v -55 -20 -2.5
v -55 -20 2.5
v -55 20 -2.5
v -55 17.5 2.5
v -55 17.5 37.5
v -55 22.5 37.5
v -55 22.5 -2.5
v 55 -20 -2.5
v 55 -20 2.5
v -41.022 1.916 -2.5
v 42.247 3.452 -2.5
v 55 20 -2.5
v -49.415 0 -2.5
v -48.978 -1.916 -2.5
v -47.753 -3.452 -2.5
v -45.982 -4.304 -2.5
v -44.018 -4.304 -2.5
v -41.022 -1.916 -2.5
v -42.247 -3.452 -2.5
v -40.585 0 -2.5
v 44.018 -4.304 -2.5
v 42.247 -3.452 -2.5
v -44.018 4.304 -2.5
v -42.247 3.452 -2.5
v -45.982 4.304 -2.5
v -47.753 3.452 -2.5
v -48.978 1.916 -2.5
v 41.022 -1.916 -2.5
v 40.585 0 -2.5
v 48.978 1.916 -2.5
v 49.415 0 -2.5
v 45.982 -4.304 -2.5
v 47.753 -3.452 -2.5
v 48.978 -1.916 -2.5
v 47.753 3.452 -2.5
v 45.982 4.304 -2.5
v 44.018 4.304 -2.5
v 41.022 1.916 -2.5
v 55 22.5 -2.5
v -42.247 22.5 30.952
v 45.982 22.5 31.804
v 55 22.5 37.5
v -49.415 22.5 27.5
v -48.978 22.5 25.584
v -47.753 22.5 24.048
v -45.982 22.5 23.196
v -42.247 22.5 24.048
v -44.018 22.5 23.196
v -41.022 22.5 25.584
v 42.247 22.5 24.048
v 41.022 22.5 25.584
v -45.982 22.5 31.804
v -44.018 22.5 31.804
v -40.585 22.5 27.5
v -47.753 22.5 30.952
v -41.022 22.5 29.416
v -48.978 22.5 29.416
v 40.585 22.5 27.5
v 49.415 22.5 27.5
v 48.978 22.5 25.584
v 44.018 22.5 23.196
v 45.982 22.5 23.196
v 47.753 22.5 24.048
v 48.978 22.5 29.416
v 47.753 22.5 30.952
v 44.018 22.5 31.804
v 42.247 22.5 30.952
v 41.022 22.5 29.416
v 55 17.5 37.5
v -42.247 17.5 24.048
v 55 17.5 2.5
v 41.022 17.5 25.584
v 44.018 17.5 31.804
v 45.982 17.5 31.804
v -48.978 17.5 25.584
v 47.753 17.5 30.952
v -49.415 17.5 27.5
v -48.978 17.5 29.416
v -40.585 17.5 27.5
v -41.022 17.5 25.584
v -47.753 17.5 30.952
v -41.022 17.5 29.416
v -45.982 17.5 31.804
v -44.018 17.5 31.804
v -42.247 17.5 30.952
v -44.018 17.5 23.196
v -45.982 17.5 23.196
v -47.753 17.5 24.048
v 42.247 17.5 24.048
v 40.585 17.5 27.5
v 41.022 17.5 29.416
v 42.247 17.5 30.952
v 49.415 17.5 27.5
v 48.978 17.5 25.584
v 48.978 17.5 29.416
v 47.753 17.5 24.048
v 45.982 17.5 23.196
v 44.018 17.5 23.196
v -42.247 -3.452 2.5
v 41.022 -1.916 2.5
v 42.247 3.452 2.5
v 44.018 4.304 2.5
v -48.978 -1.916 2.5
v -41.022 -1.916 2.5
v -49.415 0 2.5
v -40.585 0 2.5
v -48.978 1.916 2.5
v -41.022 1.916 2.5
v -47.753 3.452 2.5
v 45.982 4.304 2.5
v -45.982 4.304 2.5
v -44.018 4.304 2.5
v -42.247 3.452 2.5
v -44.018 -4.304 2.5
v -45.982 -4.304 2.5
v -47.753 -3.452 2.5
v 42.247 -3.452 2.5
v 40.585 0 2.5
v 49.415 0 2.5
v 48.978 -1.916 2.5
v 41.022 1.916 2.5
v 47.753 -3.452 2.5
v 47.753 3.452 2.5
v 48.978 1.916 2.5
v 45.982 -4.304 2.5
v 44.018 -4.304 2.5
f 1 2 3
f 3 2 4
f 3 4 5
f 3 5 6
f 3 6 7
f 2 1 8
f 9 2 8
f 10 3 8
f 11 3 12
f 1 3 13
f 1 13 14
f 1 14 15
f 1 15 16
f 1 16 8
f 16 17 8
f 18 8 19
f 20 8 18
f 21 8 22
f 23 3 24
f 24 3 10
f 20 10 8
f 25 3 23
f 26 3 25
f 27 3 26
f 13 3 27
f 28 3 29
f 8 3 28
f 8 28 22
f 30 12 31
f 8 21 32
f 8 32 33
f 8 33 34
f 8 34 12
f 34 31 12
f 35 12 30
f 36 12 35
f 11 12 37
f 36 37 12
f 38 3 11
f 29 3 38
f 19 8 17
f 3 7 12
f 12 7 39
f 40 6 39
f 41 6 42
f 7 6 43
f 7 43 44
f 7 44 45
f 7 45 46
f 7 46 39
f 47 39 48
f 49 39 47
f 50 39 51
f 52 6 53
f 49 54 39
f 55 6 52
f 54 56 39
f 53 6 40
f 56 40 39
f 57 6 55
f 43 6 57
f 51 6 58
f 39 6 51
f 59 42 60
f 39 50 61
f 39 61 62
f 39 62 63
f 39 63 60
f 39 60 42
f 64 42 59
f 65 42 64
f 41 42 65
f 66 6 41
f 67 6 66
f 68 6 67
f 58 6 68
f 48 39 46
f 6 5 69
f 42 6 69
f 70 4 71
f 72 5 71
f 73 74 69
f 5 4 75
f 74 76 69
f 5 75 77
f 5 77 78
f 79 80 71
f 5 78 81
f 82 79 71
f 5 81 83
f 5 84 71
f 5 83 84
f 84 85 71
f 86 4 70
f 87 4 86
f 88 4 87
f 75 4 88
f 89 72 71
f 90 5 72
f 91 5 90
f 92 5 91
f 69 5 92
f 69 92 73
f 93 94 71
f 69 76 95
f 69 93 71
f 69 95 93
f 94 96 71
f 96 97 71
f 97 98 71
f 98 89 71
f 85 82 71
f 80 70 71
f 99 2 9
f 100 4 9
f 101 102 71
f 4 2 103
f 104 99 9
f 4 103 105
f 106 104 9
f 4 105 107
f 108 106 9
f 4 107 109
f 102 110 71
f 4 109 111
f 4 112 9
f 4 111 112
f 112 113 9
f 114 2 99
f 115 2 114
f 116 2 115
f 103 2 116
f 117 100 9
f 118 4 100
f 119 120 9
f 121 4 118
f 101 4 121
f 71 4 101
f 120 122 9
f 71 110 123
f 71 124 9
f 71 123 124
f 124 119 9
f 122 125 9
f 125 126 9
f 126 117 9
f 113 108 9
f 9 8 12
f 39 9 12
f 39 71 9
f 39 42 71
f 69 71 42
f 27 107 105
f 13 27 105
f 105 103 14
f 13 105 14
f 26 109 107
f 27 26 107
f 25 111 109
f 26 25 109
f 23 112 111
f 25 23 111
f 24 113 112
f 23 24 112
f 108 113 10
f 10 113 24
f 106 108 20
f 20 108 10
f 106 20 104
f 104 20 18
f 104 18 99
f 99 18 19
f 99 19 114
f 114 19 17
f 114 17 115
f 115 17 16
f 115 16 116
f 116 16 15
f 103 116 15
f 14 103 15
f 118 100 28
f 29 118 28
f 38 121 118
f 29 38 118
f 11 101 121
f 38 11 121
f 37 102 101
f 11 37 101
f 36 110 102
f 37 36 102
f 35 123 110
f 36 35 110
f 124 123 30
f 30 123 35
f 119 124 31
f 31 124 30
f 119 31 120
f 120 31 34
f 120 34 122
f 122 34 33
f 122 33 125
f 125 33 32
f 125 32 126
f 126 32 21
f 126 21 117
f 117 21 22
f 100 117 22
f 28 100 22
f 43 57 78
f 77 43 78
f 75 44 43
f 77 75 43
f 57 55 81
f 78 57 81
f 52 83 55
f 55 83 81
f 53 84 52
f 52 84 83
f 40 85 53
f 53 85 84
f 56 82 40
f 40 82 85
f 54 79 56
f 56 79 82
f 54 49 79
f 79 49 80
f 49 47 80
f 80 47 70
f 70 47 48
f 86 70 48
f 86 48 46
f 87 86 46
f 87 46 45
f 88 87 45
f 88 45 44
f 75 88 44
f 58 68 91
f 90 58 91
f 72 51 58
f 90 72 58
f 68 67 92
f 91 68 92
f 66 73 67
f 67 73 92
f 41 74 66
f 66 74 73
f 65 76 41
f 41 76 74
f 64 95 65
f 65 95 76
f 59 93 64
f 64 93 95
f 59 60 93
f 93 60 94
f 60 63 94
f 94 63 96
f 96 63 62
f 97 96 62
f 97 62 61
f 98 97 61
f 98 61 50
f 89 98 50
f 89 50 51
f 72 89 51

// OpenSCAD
// Capacitor Bracket - used to attach capacitor to the antenna's "spine"

sr=8.83; //  standard diameter
T=5; //thickness

module bore(){
	cylinder(h=(T+2),d=sr,center=true);
}
/*
module threadrod(){
	color("Blue",0.5) cylinder(h=
}
*/

module isoplate(){
translate([0,20,17.5])rotate([90,0,0]){
			difference(){
			translate([0,0,0])cube([110,40,T],center=true);
			translate([45,10,0]) bore();
			translate([-45,10,0]) bore();
		}
	}

	difference(){
		translate([0,0,0])cube([110,40,T],center=true);
		//translate([0,-35,0]) bore();

		translate([45,0,0]) bore();
		//translate([45,-45,0]) bore();
		translate([-45,0,0]) bore();
		//translate([-45,-45,0]) bore();
	}
	
}

isoplate();
